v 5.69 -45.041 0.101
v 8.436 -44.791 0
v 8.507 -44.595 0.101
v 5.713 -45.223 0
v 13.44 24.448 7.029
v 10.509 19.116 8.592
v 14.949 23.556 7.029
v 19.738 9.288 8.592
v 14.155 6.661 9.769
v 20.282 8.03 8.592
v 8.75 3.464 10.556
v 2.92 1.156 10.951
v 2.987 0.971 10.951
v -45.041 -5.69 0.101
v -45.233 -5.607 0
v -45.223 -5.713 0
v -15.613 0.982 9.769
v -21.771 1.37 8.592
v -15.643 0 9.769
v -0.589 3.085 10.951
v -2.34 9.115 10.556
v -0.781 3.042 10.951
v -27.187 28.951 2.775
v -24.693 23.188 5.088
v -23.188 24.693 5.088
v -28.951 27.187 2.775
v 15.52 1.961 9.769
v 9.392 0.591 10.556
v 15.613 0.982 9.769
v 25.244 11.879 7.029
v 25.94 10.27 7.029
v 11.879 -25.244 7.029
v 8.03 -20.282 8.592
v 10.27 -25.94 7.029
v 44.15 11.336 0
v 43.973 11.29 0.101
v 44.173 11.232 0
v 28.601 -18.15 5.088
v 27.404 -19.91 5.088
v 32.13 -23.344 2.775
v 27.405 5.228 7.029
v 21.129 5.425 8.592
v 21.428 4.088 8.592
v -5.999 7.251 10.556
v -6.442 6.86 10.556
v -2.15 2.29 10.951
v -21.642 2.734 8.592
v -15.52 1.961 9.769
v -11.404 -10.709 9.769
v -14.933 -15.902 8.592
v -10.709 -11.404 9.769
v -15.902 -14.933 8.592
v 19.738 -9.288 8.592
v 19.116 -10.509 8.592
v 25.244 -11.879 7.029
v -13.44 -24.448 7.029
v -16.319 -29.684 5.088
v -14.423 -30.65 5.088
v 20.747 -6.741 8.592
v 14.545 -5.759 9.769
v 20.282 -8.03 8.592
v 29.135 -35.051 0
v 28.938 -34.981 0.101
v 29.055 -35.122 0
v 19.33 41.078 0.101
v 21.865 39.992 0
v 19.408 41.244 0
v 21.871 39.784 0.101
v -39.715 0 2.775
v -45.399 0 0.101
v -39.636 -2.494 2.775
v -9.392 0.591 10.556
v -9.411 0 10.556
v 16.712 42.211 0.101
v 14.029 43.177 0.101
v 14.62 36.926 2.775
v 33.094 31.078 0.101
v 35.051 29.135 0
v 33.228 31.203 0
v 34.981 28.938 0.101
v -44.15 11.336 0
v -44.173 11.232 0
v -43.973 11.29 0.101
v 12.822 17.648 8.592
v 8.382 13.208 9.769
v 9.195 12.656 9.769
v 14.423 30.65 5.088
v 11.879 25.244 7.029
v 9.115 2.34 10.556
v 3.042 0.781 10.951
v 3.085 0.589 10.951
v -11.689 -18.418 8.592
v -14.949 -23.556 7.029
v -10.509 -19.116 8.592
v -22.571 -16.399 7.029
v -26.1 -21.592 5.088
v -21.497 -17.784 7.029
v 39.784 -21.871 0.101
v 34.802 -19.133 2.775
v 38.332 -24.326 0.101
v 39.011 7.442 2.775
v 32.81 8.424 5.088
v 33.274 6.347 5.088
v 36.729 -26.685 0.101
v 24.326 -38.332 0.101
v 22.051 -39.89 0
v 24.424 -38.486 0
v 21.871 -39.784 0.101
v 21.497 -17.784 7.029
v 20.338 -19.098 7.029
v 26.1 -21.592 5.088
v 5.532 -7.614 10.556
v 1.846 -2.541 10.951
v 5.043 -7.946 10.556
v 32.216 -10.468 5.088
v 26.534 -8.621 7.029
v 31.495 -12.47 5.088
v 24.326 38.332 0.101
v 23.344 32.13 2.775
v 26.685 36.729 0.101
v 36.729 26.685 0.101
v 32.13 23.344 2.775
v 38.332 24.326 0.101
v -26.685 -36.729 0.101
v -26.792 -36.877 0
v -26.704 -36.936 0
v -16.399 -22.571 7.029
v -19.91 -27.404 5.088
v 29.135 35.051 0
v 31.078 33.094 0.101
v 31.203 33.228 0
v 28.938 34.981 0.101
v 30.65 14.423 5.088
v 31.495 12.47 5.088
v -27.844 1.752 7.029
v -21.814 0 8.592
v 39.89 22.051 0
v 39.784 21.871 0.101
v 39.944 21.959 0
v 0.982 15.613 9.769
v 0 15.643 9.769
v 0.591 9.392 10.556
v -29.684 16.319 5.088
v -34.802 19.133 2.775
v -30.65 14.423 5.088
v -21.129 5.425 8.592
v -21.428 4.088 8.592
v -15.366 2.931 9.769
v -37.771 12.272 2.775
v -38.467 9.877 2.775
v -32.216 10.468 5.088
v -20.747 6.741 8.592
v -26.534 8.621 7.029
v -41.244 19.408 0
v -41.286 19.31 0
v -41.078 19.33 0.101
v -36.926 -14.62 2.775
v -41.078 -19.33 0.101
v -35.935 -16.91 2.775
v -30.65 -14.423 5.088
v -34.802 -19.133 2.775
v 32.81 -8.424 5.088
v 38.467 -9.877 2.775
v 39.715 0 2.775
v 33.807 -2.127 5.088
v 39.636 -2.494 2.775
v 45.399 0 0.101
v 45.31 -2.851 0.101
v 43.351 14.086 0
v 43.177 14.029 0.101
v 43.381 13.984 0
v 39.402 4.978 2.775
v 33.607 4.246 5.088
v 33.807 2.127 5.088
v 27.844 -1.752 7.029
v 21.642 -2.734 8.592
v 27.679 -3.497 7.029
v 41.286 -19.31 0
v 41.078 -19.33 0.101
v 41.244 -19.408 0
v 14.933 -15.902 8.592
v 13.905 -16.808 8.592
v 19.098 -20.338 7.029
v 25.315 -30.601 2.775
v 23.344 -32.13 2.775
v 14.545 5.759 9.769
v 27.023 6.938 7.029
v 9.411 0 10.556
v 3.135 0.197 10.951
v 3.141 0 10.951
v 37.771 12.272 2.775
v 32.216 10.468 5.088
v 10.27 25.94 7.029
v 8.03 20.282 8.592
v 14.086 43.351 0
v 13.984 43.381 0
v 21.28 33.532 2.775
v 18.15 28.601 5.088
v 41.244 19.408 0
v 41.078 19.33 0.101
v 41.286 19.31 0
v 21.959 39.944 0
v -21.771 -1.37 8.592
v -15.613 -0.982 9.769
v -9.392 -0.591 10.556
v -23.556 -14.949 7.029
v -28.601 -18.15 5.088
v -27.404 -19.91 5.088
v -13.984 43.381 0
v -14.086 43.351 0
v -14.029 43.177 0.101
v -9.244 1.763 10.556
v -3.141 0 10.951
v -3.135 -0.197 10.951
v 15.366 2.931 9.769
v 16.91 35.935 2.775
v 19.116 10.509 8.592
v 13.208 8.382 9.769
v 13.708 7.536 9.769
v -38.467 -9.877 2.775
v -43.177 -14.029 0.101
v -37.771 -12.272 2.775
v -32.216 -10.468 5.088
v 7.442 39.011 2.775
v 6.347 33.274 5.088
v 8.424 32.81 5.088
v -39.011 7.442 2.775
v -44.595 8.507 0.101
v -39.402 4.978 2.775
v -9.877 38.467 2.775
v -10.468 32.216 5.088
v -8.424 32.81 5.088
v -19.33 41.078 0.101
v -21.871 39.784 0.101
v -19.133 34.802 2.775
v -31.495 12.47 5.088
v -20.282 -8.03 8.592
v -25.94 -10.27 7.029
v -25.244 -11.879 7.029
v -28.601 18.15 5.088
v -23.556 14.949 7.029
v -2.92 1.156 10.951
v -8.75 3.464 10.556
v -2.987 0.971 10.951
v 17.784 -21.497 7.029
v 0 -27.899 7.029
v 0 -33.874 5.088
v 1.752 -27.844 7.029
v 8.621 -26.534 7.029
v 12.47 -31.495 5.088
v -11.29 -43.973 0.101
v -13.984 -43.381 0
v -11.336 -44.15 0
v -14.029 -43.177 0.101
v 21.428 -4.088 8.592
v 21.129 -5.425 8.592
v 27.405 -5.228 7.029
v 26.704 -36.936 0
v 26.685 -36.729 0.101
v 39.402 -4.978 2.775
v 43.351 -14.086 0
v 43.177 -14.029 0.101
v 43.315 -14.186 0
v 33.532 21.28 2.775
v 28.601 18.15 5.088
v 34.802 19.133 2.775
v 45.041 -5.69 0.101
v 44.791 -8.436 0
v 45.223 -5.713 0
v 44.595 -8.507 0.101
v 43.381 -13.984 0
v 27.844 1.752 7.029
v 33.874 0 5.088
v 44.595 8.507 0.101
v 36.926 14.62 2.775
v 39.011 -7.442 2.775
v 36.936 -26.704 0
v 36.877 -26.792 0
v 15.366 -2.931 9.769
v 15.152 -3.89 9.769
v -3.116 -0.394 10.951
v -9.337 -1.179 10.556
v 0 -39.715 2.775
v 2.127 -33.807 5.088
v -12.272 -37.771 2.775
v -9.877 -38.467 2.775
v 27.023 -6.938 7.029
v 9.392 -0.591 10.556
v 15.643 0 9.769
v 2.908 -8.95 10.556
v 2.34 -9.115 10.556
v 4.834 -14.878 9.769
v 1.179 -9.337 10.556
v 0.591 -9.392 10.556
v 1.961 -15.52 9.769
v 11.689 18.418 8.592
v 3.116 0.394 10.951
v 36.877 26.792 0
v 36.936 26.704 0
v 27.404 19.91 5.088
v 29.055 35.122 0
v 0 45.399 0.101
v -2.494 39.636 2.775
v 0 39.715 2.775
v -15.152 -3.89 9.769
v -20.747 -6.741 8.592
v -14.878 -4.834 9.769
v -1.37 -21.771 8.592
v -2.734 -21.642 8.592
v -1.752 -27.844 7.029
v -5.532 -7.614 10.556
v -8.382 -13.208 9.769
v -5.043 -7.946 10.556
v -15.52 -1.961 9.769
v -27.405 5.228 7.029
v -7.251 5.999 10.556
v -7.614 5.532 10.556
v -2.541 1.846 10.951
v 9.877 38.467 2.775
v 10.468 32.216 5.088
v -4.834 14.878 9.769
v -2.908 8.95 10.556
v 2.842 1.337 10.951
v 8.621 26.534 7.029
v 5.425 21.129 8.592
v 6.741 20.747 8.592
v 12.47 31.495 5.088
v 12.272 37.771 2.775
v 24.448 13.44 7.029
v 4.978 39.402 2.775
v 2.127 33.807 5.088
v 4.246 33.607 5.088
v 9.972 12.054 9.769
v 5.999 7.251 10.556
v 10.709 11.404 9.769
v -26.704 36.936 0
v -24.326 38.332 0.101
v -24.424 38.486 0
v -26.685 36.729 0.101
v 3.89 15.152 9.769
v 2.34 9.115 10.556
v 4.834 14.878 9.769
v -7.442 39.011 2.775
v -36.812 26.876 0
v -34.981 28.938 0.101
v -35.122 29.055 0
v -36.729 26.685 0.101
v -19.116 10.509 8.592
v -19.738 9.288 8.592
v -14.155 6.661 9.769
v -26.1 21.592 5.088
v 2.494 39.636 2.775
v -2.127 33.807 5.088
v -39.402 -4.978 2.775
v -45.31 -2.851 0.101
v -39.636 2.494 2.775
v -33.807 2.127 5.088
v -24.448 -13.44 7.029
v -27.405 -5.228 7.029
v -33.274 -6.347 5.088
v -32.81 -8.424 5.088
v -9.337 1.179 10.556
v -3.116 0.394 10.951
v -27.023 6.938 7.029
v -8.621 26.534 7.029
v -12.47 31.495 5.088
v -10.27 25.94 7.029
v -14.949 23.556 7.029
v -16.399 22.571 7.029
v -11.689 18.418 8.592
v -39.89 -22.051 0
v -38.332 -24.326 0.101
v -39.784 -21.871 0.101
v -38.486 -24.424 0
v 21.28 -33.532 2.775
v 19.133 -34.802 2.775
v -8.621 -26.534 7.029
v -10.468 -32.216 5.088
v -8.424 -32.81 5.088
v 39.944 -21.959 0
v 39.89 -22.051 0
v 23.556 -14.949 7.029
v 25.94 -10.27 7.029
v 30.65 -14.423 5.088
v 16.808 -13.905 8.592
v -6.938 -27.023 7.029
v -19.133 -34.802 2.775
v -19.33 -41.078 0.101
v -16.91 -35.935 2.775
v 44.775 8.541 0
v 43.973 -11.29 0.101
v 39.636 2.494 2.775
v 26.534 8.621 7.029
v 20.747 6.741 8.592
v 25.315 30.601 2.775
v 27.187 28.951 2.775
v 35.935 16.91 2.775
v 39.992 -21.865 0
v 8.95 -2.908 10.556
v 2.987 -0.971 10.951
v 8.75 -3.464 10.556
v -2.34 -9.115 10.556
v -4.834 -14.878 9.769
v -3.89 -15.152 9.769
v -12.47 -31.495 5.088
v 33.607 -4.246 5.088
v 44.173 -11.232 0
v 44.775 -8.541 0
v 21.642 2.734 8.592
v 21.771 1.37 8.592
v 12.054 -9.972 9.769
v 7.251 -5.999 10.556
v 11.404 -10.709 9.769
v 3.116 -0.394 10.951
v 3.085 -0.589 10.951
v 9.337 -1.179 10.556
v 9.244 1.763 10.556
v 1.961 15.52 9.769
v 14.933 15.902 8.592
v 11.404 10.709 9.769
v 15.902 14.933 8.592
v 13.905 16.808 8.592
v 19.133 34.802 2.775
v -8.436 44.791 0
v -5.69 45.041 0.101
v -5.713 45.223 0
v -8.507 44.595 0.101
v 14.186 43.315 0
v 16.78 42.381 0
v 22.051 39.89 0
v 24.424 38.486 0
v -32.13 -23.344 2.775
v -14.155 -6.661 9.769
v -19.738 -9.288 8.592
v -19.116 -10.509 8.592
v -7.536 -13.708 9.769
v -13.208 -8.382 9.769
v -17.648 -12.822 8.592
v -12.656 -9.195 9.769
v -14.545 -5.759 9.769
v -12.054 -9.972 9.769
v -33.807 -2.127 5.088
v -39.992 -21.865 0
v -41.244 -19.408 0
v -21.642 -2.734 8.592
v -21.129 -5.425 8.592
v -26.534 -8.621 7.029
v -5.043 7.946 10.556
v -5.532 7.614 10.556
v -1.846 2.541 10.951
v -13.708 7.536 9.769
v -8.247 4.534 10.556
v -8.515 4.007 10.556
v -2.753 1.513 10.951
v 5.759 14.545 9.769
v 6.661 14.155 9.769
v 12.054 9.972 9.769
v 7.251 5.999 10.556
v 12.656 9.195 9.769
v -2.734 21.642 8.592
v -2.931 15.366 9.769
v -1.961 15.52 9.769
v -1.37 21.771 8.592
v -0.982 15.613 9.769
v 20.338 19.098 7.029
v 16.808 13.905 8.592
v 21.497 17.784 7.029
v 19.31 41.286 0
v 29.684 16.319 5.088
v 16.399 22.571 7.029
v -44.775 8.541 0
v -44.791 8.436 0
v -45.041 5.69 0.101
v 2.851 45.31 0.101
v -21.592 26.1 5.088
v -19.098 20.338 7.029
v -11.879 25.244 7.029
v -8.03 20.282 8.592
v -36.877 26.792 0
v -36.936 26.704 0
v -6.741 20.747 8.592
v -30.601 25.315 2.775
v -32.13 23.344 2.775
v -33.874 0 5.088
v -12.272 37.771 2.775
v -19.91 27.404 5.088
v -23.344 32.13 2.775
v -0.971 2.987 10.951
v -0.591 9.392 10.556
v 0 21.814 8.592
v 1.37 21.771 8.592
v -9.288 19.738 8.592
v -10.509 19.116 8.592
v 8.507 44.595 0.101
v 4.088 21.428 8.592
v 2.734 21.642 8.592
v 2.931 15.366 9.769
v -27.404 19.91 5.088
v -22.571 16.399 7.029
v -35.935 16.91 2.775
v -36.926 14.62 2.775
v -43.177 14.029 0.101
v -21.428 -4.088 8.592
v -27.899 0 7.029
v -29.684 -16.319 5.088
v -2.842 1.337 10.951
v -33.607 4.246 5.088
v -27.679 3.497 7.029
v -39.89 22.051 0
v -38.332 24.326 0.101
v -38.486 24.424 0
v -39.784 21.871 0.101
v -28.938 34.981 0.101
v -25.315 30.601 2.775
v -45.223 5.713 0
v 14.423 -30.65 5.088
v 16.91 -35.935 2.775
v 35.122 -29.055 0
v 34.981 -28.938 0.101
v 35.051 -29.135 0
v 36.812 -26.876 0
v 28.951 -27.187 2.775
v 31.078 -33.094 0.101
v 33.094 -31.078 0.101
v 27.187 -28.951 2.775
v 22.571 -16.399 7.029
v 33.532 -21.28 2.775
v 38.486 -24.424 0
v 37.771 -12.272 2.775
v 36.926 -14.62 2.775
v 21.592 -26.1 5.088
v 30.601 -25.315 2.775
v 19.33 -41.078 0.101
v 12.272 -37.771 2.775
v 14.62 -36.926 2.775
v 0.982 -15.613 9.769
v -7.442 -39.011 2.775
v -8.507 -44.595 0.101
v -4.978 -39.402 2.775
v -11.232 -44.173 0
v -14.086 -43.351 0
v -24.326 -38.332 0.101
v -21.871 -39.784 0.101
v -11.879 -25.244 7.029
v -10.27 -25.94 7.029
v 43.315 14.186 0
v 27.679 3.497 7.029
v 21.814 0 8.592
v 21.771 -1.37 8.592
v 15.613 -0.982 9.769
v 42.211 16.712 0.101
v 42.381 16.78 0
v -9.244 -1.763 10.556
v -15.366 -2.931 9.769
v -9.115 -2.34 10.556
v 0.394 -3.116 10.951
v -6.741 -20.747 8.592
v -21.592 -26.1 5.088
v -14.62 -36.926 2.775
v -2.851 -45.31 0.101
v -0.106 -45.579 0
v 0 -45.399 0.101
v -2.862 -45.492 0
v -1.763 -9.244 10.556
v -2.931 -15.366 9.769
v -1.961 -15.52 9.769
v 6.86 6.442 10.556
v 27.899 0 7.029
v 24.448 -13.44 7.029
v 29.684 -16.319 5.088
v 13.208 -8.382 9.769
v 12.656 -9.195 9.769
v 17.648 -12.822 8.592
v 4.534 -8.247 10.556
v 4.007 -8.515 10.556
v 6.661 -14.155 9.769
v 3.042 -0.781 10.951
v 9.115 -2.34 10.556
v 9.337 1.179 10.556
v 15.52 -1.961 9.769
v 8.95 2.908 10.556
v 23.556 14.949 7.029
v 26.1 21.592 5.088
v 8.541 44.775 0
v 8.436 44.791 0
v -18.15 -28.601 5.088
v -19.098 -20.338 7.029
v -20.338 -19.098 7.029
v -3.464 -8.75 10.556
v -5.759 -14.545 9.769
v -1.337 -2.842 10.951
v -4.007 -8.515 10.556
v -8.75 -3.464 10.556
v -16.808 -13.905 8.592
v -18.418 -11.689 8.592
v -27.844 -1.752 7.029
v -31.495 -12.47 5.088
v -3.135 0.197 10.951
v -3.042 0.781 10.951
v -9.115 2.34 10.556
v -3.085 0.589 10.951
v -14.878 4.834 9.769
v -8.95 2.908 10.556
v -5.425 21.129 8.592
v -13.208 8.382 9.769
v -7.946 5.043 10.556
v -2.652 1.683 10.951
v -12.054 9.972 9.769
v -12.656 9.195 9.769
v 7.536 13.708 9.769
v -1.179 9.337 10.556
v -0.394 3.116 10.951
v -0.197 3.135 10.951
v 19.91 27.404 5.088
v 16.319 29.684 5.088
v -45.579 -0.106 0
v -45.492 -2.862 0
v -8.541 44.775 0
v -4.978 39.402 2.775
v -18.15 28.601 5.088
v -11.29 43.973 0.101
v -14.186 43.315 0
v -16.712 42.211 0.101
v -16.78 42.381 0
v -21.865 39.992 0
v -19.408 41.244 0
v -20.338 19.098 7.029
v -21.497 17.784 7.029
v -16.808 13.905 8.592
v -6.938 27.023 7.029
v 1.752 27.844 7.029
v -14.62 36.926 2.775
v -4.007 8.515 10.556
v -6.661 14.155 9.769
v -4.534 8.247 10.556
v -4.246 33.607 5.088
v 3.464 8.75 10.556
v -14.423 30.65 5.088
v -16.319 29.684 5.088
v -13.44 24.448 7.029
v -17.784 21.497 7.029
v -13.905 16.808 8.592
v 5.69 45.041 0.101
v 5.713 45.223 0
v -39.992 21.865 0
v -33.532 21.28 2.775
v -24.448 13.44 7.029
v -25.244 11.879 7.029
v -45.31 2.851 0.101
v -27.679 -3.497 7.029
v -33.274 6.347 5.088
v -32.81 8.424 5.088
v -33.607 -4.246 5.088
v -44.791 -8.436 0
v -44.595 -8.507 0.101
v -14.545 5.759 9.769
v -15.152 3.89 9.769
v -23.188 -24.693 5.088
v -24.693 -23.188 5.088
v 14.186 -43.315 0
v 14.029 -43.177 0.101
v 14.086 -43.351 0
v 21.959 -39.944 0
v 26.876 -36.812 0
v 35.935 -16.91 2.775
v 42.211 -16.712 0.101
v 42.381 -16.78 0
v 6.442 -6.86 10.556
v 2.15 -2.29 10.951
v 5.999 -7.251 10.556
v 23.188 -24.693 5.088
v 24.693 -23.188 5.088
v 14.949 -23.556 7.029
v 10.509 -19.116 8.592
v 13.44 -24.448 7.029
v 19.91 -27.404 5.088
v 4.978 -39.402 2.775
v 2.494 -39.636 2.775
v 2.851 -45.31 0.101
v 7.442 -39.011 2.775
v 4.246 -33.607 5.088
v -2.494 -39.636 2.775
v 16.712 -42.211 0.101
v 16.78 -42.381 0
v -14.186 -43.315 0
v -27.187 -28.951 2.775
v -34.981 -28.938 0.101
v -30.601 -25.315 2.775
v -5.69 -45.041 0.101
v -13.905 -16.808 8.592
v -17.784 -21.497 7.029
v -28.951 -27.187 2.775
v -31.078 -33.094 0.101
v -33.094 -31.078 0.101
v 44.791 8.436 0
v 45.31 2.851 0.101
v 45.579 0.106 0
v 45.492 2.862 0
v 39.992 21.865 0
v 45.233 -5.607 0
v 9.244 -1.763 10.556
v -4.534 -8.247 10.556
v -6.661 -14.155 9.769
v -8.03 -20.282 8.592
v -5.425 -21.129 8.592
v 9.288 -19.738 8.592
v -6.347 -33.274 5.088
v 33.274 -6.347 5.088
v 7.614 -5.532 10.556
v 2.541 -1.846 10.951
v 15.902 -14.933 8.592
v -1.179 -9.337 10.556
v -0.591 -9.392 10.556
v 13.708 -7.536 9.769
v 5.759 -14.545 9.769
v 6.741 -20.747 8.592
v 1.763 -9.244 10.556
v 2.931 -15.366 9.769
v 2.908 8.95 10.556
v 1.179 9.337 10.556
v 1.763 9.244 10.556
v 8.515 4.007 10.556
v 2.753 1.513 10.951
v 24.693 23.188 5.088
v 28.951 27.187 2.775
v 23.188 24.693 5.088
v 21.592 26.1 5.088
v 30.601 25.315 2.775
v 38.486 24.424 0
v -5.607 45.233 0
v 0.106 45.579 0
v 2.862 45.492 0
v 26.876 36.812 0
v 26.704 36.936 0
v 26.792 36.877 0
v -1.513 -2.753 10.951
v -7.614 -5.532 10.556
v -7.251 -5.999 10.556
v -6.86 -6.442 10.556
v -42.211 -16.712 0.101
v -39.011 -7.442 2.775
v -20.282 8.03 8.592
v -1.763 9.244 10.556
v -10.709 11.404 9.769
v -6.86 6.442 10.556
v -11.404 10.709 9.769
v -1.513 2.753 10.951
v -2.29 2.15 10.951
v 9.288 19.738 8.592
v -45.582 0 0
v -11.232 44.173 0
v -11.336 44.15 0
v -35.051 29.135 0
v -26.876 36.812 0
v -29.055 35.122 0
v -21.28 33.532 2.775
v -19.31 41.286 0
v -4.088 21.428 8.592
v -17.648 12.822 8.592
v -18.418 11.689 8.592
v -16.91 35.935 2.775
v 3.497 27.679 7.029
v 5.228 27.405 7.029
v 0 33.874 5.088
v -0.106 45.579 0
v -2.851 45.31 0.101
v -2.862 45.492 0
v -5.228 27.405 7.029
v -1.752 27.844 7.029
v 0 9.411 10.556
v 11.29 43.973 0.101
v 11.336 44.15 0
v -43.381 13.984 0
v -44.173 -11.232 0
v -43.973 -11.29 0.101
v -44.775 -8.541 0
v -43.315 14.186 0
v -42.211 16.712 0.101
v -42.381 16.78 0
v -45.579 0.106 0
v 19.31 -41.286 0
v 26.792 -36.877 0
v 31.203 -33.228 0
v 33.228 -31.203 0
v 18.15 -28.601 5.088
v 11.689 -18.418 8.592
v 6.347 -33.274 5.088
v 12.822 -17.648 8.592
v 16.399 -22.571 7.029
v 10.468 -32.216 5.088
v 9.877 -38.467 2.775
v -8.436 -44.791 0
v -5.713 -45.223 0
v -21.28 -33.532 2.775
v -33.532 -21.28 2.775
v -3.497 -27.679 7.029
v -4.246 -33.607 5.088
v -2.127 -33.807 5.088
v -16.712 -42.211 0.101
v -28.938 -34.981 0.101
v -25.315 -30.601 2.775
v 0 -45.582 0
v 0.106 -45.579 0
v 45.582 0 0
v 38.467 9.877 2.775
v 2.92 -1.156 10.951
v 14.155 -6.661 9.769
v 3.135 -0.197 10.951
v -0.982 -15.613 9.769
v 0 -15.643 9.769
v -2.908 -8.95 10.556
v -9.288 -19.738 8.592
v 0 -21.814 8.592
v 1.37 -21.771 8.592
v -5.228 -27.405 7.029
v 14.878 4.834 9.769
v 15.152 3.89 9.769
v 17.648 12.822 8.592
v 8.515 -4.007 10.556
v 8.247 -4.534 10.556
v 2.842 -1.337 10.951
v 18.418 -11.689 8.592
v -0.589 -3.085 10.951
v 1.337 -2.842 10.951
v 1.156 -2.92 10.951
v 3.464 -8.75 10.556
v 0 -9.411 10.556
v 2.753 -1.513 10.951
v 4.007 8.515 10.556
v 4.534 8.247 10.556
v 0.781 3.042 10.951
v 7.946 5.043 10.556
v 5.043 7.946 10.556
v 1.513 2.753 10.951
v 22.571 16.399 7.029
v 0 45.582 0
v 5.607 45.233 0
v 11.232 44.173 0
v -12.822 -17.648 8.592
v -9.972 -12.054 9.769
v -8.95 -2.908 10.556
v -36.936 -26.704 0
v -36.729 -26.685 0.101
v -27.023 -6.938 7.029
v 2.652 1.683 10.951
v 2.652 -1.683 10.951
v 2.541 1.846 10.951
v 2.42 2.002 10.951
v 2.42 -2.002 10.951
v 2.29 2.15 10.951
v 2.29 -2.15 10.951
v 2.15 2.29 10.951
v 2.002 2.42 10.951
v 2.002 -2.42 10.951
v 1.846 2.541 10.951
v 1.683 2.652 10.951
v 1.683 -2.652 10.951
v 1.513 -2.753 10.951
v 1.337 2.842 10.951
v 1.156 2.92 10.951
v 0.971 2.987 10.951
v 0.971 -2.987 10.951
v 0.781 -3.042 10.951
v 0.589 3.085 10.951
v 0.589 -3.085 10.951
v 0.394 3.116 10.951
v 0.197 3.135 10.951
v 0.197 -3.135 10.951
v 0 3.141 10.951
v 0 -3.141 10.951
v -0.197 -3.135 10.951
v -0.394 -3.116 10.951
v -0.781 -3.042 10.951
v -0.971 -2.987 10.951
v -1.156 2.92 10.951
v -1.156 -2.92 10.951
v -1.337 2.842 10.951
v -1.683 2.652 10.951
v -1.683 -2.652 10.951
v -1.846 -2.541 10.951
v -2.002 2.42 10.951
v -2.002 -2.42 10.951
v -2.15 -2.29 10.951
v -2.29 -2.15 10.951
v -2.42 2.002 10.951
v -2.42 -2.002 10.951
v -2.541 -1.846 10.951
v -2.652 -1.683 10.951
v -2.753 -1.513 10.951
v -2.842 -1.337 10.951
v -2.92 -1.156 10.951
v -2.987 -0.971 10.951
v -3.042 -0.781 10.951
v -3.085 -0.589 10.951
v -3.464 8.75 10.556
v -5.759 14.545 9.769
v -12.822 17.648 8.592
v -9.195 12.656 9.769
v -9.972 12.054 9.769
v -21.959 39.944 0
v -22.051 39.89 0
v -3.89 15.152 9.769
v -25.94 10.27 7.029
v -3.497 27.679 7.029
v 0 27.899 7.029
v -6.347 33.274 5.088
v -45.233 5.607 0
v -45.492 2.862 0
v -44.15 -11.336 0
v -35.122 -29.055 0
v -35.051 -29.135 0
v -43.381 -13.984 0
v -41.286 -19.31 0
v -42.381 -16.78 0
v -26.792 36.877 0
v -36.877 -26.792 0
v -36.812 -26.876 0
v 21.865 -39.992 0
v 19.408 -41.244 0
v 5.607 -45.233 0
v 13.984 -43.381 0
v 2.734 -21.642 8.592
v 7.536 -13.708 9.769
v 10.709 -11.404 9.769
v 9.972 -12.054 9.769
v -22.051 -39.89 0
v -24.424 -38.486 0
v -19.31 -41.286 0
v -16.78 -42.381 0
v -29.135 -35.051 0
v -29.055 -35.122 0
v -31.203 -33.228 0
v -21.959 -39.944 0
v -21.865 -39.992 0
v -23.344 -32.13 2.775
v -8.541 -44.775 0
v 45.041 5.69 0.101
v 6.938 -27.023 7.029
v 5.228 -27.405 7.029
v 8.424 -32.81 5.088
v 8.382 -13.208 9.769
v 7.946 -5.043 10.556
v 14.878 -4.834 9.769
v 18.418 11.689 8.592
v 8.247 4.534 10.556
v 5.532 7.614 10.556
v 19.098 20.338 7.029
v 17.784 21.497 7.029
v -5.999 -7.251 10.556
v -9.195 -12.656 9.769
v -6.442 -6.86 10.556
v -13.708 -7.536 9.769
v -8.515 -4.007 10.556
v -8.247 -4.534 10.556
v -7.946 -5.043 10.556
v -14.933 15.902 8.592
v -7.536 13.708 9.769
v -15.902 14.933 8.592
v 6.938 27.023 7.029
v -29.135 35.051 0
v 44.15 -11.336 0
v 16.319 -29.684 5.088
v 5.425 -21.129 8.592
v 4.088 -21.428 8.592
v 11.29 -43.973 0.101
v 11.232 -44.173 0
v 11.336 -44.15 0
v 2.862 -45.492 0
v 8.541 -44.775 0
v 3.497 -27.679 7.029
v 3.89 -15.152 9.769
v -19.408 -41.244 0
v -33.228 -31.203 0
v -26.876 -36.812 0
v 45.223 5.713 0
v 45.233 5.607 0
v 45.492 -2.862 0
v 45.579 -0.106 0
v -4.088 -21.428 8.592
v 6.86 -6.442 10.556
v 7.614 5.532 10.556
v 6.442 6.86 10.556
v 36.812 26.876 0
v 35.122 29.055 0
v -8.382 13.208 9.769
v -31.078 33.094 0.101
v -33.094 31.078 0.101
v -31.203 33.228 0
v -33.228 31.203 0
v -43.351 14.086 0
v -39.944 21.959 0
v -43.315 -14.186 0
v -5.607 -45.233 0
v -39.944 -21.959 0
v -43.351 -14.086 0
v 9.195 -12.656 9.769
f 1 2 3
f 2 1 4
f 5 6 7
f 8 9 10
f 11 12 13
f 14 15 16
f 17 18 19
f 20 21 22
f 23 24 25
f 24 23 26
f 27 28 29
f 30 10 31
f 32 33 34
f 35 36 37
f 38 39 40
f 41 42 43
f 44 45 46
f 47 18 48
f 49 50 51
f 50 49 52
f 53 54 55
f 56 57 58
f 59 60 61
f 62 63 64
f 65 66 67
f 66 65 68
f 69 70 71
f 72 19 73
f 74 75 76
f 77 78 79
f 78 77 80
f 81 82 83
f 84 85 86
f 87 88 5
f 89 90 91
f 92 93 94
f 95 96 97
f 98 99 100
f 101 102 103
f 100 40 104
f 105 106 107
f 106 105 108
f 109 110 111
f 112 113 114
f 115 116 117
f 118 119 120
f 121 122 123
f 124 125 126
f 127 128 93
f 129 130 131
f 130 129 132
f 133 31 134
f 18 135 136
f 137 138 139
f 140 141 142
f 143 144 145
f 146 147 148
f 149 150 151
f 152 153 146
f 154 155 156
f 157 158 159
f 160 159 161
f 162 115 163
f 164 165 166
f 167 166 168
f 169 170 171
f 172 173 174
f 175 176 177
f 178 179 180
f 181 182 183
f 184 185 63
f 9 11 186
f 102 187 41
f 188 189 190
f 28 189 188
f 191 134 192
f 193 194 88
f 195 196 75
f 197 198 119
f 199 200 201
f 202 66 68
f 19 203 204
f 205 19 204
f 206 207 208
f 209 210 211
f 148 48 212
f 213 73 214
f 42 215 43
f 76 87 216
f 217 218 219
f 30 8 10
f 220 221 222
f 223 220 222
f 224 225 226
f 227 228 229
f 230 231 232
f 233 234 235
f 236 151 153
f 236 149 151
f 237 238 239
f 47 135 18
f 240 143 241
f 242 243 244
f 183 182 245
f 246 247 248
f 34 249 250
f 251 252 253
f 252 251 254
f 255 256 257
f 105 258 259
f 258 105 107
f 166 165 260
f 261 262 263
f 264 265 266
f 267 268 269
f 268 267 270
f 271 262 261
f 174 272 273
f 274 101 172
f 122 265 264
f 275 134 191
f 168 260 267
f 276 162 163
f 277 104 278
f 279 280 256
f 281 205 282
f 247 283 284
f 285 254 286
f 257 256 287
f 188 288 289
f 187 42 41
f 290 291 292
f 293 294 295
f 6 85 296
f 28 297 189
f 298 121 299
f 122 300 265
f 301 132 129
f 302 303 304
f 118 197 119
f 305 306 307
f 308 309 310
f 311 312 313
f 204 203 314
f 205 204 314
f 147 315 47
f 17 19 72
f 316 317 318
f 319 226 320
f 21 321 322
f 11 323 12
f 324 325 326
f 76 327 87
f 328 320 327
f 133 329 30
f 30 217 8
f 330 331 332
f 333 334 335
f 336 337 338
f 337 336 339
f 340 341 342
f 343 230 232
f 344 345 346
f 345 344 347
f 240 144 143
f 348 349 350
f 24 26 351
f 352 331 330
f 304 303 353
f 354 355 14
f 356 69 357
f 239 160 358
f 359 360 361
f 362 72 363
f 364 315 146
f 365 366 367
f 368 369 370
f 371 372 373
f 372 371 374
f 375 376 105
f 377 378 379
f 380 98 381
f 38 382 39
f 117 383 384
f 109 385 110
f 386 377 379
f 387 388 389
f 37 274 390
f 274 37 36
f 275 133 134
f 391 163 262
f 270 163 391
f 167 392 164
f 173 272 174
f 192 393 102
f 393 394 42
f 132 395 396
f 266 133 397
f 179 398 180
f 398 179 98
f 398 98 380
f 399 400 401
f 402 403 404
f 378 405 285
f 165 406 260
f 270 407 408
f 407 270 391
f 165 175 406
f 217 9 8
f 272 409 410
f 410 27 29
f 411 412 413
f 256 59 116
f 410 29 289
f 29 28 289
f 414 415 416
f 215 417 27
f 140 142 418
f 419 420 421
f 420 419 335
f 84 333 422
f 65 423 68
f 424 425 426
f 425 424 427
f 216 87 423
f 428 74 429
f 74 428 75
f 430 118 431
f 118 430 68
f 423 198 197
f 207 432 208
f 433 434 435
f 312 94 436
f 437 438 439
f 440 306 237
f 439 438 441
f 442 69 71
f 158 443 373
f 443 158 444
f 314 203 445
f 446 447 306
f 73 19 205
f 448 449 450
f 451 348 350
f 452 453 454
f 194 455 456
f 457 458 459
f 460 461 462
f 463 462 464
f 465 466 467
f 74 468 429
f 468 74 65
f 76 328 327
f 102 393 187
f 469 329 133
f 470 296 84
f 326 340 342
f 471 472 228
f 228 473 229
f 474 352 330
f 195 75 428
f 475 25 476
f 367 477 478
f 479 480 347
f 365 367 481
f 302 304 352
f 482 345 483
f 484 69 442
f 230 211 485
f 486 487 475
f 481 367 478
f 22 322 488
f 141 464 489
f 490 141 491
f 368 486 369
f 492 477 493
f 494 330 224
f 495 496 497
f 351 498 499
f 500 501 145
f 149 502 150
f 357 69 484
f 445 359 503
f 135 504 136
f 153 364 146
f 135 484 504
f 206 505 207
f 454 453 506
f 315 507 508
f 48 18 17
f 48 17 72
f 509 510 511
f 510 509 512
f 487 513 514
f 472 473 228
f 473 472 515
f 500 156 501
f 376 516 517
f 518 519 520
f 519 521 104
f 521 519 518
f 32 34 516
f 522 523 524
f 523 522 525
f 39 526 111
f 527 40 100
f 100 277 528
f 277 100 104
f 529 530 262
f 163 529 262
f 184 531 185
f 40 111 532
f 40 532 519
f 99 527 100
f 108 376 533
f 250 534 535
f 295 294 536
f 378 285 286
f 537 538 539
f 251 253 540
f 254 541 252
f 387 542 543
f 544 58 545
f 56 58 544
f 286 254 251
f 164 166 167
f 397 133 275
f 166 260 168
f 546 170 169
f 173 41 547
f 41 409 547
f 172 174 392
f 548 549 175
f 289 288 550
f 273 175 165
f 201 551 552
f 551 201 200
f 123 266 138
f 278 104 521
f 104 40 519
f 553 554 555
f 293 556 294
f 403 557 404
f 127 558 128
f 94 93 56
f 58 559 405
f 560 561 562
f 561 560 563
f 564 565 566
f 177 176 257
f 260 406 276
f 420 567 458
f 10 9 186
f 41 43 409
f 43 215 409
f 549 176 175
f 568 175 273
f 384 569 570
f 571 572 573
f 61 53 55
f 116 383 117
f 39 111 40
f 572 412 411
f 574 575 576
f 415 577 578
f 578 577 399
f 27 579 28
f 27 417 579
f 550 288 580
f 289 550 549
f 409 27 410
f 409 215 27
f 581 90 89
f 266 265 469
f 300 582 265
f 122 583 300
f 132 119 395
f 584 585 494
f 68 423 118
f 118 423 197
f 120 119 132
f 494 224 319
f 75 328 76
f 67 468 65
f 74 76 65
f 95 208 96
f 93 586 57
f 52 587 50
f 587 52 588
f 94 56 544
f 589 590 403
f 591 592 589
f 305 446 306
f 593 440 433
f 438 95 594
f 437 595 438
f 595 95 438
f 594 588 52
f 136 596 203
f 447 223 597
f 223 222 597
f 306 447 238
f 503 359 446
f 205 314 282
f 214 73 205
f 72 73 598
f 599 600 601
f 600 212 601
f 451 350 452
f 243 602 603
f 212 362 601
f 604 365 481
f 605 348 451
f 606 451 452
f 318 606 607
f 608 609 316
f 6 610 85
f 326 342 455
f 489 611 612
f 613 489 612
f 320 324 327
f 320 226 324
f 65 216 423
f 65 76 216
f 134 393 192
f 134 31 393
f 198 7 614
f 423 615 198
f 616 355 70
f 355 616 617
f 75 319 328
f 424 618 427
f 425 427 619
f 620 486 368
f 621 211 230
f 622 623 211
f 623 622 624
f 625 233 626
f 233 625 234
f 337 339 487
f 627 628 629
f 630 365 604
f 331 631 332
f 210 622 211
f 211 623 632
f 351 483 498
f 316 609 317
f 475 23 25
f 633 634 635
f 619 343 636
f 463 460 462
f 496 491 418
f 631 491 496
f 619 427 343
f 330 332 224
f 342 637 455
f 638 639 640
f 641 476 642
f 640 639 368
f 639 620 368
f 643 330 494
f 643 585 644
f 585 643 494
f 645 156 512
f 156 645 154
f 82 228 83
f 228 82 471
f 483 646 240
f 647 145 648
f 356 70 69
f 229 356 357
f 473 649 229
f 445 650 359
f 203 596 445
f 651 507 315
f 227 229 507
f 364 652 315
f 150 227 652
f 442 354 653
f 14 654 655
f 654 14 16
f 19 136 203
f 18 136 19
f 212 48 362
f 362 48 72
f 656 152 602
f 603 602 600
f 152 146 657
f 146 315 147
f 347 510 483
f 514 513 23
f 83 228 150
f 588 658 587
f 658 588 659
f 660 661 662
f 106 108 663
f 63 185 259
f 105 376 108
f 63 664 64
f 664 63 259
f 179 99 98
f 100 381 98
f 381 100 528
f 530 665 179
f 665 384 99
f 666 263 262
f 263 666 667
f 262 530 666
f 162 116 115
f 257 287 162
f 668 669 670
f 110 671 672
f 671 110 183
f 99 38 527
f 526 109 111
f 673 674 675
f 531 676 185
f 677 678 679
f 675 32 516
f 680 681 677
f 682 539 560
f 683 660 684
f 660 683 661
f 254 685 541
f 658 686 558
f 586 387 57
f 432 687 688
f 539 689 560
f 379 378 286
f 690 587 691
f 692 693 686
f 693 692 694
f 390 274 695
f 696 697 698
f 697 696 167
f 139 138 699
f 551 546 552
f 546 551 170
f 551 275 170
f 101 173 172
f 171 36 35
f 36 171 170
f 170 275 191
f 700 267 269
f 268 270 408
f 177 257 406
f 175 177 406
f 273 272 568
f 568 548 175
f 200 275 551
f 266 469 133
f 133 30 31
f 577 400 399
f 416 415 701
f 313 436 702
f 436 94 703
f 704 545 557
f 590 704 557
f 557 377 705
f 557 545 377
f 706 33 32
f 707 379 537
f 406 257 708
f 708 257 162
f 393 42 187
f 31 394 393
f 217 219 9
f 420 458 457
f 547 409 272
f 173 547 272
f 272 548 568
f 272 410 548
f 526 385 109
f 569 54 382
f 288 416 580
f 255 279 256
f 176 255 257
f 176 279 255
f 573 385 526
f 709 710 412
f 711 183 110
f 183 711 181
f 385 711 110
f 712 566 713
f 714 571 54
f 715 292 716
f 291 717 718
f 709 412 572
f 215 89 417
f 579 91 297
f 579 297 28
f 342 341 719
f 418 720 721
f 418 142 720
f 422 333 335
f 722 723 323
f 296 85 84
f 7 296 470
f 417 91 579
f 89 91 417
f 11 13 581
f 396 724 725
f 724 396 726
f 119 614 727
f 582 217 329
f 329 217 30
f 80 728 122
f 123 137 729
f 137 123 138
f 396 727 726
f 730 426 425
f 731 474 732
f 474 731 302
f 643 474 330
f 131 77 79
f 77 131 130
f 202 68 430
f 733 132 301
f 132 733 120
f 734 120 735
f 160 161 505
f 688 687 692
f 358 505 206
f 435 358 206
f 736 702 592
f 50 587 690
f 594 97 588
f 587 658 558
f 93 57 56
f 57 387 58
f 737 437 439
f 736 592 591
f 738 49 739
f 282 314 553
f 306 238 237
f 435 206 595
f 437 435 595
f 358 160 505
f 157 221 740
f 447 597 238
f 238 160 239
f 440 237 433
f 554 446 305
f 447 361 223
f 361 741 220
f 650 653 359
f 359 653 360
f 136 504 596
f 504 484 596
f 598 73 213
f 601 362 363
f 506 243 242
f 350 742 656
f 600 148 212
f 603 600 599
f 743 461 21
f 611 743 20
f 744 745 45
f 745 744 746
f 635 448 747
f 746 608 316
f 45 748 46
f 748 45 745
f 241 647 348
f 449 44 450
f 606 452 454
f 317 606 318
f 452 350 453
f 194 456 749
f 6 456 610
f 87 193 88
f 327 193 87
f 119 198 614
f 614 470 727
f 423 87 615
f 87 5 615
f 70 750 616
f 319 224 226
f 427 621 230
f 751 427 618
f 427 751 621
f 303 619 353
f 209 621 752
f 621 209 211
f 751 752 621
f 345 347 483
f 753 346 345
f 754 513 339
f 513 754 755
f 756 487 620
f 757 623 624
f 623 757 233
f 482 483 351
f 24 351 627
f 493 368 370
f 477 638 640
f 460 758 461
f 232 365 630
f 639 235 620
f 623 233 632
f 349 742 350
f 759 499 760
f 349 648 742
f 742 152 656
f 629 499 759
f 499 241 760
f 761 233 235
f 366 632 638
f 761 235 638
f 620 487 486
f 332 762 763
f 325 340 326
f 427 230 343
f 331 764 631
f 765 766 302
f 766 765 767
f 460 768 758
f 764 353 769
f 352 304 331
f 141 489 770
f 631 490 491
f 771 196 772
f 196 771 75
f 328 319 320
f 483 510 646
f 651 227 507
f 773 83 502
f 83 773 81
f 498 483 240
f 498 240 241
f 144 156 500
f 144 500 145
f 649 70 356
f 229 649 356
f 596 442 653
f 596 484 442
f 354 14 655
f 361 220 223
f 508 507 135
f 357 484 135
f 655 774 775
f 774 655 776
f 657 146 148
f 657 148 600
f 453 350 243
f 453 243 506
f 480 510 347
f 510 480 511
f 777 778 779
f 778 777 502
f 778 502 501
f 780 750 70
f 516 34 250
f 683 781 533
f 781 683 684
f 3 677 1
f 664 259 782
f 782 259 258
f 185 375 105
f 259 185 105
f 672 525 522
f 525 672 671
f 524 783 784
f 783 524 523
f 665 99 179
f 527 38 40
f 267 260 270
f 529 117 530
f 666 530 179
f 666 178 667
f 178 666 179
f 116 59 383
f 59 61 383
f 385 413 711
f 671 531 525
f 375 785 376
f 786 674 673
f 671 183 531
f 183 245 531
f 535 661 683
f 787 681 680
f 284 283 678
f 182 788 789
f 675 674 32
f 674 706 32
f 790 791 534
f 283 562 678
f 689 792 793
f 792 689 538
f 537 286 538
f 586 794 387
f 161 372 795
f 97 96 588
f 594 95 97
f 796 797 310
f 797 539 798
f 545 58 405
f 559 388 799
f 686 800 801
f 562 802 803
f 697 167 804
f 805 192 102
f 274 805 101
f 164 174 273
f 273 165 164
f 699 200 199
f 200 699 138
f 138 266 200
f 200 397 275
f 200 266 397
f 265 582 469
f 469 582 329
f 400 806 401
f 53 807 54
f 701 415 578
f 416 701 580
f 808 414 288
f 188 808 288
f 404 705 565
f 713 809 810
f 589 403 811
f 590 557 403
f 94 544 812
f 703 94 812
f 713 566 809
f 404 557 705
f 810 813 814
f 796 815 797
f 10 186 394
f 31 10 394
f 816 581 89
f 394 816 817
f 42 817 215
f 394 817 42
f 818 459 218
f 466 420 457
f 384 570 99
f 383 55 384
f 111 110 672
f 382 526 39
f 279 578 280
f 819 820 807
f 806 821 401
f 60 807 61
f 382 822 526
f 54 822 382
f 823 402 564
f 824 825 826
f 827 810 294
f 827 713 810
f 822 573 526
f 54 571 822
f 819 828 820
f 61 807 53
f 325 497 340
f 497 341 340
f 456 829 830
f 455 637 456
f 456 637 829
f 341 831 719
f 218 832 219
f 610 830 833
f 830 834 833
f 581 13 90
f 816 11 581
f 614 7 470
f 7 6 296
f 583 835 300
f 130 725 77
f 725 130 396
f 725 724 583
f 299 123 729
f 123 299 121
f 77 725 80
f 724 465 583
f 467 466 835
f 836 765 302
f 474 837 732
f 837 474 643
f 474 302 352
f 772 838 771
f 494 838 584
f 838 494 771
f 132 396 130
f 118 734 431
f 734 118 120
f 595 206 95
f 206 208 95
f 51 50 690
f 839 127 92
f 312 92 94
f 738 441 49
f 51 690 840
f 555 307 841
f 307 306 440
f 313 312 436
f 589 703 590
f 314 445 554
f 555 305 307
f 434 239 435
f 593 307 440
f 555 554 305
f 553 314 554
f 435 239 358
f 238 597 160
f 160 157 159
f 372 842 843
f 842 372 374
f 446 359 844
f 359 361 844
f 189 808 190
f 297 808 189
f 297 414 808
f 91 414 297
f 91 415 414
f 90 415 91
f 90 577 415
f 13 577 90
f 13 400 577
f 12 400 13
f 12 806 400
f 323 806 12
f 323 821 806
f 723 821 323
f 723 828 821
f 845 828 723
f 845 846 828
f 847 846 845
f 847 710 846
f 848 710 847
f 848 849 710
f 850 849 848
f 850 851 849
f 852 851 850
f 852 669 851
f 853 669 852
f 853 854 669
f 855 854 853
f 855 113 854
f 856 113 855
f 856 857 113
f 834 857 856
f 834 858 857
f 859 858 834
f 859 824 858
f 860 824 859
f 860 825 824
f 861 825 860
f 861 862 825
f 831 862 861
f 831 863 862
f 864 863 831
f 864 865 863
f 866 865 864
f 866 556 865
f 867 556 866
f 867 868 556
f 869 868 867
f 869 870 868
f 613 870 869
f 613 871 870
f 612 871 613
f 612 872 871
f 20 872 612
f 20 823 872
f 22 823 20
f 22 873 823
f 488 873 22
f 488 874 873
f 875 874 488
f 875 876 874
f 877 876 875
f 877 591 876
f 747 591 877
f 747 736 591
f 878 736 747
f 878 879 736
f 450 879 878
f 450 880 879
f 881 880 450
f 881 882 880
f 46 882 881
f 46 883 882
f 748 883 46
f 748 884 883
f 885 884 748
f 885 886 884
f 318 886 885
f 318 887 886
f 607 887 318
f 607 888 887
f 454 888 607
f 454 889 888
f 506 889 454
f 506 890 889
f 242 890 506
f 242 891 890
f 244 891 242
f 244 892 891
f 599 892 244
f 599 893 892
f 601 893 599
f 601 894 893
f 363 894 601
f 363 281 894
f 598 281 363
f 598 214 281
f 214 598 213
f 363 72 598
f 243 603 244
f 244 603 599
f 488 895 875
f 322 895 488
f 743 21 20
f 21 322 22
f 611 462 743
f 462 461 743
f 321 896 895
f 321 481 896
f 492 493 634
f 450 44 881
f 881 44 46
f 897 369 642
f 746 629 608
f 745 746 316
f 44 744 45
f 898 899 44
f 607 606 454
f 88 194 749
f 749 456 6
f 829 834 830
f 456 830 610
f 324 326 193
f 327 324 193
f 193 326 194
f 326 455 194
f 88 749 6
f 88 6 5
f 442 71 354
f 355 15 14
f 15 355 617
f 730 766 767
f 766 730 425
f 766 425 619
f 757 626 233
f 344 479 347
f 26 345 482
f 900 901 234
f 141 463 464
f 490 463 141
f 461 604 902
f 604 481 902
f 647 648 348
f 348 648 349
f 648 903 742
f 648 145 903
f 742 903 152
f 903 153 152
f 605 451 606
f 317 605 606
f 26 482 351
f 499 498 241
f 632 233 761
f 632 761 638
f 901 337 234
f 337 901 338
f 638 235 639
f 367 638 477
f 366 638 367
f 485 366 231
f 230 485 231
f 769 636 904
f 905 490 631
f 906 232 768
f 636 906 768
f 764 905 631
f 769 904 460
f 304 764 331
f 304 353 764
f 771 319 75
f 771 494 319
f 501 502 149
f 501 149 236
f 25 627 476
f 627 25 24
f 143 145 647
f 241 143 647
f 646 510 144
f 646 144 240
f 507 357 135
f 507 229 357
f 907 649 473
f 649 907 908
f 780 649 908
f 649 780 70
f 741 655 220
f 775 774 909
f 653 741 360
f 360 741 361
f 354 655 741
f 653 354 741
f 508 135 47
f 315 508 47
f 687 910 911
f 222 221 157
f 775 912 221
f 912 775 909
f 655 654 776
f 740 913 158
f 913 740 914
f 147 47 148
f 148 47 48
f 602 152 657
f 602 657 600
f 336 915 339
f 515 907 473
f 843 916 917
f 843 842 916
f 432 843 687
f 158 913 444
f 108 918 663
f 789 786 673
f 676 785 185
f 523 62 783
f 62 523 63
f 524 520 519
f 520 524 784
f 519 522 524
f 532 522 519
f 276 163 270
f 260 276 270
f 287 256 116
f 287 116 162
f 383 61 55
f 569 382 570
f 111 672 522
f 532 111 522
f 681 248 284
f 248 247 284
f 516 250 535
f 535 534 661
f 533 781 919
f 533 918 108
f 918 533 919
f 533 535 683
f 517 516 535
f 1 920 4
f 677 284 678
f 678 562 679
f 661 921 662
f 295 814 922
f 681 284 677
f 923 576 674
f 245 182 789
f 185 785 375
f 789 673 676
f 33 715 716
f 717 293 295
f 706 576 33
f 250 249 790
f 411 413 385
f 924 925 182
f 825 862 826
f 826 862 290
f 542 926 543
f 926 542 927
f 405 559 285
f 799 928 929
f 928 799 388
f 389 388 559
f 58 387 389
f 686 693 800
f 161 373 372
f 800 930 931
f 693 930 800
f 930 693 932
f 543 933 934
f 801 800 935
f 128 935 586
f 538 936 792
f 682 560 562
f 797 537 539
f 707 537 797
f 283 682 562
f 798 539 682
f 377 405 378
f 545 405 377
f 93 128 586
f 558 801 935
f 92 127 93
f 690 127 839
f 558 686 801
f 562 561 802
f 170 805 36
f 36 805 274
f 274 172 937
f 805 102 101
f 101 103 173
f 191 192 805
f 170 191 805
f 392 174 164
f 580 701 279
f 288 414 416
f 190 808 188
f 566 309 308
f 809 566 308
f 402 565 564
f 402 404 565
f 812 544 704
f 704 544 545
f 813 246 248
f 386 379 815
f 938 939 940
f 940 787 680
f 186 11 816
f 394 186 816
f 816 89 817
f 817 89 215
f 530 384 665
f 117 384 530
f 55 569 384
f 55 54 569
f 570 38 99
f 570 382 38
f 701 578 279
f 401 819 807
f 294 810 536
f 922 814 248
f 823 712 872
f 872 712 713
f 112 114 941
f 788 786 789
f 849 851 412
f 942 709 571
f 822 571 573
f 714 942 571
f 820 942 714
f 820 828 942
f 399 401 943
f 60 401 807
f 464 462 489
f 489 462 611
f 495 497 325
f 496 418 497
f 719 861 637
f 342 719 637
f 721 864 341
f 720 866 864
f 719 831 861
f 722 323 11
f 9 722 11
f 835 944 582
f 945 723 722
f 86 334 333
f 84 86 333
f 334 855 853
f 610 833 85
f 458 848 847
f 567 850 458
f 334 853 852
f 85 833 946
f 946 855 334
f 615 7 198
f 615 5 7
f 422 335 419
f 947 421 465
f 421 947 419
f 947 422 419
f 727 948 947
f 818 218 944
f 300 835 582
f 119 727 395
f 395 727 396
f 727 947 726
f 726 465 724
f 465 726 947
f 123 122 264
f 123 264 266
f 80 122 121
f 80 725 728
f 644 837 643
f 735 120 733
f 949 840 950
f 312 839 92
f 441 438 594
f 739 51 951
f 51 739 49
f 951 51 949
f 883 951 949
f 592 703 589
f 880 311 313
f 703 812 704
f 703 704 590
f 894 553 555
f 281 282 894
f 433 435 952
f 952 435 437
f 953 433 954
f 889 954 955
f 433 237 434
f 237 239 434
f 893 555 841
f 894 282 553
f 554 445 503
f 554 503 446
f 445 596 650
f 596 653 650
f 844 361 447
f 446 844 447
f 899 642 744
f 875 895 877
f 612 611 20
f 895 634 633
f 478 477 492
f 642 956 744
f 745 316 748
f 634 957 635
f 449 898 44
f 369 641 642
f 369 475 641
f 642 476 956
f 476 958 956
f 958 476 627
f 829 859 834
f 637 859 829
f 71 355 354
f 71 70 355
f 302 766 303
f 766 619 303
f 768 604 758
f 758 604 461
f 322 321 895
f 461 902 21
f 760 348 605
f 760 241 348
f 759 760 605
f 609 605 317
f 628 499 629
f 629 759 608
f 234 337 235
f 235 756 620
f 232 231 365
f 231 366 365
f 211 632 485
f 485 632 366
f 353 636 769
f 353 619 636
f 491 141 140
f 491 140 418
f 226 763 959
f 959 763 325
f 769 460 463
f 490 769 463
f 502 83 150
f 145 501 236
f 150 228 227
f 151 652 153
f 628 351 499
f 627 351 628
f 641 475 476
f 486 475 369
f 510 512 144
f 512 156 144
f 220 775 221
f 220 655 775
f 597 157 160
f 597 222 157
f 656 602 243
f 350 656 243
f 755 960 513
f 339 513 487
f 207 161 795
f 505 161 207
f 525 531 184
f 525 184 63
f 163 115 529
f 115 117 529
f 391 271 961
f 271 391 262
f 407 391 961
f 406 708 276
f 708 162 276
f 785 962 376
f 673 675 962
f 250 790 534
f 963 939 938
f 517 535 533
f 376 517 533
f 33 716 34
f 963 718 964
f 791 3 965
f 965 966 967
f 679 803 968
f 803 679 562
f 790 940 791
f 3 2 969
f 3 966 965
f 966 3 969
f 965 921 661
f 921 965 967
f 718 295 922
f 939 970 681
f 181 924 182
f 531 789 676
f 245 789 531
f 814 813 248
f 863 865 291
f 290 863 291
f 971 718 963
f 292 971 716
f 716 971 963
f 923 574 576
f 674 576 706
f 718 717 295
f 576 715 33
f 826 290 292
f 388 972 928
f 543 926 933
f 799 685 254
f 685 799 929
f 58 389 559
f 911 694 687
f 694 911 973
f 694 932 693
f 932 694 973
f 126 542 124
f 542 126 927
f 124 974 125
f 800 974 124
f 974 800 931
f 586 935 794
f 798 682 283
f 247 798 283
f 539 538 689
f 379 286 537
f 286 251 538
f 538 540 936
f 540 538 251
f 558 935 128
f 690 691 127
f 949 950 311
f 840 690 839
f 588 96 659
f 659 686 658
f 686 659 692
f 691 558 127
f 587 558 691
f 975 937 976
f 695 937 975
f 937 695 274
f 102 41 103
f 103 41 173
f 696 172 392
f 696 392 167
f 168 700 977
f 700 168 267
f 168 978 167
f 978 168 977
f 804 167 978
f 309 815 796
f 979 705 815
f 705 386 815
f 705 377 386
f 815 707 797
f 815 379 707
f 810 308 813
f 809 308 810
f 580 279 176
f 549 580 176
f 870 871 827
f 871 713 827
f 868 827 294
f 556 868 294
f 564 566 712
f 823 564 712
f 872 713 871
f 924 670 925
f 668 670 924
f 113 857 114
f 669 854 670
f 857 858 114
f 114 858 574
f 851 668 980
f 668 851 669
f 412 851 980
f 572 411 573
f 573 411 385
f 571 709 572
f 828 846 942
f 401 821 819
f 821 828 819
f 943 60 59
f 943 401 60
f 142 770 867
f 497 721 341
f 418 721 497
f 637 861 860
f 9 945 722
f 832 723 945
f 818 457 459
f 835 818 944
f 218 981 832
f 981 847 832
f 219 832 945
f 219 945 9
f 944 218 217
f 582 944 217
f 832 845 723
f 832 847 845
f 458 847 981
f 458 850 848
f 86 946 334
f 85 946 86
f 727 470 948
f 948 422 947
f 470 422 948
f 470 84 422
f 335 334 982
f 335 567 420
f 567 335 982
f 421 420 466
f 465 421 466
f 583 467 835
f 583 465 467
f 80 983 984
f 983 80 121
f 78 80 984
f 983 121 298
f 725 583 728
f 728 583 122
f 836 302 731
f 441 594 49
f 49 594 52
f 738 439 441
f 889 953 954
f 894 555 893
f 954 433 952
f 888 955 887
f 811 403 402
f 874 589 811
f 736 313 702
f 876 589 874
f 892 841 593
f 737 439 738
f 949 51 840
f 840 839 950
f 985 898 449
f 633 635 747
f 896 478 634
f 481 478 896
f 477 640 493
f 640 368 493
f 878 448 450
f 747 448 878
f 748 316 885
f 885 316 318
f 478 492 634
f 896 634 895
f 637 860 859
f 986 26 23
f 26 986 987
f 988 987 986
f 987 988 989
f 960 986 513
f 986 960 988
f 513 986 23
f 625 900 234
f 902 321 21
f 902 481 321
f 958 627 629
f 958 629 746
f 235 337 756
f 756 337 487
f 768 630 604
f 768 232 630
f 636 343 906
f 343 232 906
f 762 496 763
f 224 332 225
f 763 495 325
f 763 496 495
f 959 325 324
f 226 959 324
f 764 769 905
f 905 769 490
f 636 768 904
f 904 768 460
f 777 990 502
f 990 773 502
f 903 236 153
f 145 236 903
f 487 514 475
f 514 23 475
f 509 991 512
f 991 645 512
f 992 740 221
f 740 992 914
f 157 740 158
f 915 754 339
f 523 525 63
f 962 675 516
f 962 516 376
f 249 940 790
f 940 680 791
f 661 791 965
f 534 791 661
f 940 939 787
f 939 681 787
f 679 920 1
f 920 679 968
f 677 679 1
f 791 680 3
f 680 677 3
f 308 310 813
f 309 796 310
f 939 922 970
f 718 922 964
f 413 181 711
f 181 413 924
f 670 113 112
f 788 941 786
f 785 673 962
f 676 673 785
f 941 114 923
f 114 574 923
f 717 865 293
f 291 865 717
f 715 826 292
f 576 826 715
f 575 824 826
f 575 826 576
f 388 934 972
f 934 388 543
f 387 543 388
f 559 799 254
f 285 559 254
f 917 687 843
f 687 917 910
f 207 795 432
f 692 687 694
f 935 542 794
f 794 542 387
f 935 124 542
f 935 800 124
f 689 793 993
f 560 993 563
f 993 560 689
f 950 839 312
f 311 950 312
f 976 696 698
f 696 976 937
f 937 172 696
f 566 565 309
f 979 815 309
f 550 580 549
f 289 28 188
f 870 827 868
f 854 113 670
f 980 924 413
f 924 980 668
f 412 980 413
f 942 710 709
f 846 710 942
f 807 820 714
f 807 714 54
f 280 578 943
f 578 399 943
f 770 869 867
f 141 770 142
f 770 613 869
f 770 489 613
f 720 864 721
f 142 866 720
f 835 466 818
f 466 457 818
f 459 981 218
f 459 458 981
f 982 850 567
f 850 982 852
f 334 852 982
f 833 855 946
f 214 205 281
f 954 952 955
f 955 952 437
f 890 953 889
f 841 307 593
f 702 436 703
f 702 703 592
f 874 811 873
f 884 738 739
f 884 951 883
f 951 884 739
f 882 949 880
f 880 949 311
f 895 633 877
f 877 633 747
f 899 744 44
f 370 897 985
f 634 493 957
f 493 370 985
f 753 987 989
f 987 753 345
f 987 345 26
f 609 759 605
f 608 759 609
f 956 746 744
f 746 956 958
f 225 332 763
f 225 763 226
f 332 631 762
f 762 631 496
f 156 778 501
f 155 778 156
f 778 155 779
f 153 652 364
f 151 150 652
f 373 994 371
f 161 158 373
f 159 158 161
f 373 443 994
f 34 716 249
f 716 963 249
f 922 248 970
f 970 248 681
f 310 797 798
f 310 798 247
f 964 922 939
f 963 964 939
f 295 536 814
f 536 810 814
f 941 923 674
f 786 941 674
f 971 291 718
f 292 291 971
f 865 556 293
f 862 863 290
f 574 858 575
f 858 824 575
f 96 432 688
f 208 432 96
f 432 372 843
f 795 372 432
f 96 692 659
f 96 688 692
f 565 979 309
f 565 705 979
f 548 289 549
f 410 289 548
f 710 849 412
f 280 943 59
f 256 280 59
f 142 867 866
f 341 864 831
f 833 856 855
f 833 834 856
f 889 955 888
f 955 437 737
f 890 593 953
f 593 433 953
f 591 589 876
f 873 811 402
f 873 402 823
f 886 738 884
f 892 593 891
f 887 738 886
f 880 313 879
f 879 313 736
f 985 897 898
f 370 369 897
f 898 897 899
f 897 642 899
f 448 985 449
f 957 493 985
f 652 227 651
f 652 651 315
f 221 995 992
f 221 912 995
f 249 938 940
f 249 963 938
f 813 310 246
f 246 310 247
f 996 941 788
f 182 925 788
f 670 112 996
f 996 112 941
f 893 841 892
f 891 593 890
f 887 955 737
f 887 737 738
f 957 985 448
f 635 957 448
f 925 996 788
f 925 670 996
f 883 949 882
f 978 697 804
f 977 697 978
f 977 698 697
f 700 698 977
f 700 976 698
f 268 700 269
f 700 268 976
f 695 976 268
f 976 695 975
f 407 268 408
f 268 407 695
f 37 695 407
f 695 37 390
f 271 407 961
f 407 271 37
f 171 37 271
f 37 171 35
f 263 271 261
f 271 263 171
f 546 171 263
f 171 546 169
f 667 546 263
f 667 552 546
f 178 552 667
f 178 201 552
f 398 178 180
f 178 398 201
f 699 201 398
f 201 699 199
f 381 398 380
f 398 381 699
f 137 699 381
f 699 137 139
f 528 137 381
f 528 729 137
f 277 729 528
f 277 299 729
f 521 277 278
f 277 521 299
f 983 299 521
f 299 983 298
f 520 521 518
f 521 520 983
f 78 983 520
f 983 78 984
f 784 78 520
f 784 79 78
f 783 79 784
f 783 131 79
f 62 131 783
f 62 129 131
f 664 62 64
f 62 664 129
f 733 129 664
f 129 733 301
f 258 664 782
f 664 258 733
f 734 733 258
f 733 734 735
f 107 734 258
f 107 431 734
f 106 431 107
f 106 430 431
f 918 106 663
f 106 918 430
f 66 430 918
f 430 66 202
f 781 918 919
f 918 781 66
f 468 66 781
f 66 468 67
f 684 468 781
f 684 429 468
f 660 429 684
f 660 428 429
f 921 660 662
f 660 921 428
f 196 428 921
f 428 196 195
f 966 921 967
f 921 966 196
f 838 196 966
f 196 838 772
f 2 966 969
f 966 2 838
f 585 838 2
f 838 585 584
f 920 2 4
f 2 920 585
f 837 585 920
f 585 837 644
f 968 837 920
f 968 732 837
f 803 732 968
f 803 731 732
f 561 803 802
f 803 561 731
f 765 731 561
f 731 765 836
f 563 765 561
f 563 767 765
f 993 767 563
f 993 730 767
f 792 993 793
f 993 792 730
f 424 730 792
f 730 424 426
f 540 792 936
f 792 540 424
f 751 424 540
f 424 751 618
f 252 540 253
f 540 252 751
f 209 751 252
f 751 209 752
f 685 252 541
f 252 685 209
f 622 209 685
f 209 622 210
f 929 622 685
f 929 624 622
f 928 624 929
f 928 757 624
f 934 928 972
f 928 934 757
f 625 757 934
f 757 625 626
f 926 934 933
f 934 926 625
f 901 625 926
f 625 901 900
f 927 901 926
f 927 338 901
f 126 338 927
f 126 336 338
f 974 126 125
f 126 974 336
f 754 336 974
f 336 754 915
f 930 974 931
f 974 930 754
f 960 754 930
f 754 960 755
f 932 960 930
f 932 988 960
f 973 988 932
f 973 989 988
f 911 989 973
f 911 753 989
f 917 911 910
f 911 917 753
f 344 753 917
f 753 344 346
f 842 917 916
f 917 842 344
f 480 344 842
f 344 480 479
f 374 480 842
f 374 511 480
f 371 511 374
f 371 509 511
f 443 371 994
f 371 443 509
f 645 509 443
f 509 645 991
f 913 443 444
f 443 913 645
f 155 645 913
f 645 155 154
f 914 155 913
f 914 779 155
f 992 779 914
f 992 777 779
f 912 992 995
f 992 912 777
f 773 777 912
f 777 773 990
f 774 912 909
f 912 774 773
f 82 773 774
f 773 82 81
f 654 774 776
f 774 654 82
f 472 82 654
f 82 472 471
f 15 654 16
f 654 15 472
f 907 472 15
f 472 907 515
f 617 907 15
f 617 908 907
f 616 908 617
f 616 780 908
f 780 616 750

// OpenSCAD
difference()
{
translate([0,0,-89])
sphere(100, $fn=100);
translate([0,0,-200])
cylinder(h = 200, r1 = 100, r2 = 100, center = false, $fn=100);
}
